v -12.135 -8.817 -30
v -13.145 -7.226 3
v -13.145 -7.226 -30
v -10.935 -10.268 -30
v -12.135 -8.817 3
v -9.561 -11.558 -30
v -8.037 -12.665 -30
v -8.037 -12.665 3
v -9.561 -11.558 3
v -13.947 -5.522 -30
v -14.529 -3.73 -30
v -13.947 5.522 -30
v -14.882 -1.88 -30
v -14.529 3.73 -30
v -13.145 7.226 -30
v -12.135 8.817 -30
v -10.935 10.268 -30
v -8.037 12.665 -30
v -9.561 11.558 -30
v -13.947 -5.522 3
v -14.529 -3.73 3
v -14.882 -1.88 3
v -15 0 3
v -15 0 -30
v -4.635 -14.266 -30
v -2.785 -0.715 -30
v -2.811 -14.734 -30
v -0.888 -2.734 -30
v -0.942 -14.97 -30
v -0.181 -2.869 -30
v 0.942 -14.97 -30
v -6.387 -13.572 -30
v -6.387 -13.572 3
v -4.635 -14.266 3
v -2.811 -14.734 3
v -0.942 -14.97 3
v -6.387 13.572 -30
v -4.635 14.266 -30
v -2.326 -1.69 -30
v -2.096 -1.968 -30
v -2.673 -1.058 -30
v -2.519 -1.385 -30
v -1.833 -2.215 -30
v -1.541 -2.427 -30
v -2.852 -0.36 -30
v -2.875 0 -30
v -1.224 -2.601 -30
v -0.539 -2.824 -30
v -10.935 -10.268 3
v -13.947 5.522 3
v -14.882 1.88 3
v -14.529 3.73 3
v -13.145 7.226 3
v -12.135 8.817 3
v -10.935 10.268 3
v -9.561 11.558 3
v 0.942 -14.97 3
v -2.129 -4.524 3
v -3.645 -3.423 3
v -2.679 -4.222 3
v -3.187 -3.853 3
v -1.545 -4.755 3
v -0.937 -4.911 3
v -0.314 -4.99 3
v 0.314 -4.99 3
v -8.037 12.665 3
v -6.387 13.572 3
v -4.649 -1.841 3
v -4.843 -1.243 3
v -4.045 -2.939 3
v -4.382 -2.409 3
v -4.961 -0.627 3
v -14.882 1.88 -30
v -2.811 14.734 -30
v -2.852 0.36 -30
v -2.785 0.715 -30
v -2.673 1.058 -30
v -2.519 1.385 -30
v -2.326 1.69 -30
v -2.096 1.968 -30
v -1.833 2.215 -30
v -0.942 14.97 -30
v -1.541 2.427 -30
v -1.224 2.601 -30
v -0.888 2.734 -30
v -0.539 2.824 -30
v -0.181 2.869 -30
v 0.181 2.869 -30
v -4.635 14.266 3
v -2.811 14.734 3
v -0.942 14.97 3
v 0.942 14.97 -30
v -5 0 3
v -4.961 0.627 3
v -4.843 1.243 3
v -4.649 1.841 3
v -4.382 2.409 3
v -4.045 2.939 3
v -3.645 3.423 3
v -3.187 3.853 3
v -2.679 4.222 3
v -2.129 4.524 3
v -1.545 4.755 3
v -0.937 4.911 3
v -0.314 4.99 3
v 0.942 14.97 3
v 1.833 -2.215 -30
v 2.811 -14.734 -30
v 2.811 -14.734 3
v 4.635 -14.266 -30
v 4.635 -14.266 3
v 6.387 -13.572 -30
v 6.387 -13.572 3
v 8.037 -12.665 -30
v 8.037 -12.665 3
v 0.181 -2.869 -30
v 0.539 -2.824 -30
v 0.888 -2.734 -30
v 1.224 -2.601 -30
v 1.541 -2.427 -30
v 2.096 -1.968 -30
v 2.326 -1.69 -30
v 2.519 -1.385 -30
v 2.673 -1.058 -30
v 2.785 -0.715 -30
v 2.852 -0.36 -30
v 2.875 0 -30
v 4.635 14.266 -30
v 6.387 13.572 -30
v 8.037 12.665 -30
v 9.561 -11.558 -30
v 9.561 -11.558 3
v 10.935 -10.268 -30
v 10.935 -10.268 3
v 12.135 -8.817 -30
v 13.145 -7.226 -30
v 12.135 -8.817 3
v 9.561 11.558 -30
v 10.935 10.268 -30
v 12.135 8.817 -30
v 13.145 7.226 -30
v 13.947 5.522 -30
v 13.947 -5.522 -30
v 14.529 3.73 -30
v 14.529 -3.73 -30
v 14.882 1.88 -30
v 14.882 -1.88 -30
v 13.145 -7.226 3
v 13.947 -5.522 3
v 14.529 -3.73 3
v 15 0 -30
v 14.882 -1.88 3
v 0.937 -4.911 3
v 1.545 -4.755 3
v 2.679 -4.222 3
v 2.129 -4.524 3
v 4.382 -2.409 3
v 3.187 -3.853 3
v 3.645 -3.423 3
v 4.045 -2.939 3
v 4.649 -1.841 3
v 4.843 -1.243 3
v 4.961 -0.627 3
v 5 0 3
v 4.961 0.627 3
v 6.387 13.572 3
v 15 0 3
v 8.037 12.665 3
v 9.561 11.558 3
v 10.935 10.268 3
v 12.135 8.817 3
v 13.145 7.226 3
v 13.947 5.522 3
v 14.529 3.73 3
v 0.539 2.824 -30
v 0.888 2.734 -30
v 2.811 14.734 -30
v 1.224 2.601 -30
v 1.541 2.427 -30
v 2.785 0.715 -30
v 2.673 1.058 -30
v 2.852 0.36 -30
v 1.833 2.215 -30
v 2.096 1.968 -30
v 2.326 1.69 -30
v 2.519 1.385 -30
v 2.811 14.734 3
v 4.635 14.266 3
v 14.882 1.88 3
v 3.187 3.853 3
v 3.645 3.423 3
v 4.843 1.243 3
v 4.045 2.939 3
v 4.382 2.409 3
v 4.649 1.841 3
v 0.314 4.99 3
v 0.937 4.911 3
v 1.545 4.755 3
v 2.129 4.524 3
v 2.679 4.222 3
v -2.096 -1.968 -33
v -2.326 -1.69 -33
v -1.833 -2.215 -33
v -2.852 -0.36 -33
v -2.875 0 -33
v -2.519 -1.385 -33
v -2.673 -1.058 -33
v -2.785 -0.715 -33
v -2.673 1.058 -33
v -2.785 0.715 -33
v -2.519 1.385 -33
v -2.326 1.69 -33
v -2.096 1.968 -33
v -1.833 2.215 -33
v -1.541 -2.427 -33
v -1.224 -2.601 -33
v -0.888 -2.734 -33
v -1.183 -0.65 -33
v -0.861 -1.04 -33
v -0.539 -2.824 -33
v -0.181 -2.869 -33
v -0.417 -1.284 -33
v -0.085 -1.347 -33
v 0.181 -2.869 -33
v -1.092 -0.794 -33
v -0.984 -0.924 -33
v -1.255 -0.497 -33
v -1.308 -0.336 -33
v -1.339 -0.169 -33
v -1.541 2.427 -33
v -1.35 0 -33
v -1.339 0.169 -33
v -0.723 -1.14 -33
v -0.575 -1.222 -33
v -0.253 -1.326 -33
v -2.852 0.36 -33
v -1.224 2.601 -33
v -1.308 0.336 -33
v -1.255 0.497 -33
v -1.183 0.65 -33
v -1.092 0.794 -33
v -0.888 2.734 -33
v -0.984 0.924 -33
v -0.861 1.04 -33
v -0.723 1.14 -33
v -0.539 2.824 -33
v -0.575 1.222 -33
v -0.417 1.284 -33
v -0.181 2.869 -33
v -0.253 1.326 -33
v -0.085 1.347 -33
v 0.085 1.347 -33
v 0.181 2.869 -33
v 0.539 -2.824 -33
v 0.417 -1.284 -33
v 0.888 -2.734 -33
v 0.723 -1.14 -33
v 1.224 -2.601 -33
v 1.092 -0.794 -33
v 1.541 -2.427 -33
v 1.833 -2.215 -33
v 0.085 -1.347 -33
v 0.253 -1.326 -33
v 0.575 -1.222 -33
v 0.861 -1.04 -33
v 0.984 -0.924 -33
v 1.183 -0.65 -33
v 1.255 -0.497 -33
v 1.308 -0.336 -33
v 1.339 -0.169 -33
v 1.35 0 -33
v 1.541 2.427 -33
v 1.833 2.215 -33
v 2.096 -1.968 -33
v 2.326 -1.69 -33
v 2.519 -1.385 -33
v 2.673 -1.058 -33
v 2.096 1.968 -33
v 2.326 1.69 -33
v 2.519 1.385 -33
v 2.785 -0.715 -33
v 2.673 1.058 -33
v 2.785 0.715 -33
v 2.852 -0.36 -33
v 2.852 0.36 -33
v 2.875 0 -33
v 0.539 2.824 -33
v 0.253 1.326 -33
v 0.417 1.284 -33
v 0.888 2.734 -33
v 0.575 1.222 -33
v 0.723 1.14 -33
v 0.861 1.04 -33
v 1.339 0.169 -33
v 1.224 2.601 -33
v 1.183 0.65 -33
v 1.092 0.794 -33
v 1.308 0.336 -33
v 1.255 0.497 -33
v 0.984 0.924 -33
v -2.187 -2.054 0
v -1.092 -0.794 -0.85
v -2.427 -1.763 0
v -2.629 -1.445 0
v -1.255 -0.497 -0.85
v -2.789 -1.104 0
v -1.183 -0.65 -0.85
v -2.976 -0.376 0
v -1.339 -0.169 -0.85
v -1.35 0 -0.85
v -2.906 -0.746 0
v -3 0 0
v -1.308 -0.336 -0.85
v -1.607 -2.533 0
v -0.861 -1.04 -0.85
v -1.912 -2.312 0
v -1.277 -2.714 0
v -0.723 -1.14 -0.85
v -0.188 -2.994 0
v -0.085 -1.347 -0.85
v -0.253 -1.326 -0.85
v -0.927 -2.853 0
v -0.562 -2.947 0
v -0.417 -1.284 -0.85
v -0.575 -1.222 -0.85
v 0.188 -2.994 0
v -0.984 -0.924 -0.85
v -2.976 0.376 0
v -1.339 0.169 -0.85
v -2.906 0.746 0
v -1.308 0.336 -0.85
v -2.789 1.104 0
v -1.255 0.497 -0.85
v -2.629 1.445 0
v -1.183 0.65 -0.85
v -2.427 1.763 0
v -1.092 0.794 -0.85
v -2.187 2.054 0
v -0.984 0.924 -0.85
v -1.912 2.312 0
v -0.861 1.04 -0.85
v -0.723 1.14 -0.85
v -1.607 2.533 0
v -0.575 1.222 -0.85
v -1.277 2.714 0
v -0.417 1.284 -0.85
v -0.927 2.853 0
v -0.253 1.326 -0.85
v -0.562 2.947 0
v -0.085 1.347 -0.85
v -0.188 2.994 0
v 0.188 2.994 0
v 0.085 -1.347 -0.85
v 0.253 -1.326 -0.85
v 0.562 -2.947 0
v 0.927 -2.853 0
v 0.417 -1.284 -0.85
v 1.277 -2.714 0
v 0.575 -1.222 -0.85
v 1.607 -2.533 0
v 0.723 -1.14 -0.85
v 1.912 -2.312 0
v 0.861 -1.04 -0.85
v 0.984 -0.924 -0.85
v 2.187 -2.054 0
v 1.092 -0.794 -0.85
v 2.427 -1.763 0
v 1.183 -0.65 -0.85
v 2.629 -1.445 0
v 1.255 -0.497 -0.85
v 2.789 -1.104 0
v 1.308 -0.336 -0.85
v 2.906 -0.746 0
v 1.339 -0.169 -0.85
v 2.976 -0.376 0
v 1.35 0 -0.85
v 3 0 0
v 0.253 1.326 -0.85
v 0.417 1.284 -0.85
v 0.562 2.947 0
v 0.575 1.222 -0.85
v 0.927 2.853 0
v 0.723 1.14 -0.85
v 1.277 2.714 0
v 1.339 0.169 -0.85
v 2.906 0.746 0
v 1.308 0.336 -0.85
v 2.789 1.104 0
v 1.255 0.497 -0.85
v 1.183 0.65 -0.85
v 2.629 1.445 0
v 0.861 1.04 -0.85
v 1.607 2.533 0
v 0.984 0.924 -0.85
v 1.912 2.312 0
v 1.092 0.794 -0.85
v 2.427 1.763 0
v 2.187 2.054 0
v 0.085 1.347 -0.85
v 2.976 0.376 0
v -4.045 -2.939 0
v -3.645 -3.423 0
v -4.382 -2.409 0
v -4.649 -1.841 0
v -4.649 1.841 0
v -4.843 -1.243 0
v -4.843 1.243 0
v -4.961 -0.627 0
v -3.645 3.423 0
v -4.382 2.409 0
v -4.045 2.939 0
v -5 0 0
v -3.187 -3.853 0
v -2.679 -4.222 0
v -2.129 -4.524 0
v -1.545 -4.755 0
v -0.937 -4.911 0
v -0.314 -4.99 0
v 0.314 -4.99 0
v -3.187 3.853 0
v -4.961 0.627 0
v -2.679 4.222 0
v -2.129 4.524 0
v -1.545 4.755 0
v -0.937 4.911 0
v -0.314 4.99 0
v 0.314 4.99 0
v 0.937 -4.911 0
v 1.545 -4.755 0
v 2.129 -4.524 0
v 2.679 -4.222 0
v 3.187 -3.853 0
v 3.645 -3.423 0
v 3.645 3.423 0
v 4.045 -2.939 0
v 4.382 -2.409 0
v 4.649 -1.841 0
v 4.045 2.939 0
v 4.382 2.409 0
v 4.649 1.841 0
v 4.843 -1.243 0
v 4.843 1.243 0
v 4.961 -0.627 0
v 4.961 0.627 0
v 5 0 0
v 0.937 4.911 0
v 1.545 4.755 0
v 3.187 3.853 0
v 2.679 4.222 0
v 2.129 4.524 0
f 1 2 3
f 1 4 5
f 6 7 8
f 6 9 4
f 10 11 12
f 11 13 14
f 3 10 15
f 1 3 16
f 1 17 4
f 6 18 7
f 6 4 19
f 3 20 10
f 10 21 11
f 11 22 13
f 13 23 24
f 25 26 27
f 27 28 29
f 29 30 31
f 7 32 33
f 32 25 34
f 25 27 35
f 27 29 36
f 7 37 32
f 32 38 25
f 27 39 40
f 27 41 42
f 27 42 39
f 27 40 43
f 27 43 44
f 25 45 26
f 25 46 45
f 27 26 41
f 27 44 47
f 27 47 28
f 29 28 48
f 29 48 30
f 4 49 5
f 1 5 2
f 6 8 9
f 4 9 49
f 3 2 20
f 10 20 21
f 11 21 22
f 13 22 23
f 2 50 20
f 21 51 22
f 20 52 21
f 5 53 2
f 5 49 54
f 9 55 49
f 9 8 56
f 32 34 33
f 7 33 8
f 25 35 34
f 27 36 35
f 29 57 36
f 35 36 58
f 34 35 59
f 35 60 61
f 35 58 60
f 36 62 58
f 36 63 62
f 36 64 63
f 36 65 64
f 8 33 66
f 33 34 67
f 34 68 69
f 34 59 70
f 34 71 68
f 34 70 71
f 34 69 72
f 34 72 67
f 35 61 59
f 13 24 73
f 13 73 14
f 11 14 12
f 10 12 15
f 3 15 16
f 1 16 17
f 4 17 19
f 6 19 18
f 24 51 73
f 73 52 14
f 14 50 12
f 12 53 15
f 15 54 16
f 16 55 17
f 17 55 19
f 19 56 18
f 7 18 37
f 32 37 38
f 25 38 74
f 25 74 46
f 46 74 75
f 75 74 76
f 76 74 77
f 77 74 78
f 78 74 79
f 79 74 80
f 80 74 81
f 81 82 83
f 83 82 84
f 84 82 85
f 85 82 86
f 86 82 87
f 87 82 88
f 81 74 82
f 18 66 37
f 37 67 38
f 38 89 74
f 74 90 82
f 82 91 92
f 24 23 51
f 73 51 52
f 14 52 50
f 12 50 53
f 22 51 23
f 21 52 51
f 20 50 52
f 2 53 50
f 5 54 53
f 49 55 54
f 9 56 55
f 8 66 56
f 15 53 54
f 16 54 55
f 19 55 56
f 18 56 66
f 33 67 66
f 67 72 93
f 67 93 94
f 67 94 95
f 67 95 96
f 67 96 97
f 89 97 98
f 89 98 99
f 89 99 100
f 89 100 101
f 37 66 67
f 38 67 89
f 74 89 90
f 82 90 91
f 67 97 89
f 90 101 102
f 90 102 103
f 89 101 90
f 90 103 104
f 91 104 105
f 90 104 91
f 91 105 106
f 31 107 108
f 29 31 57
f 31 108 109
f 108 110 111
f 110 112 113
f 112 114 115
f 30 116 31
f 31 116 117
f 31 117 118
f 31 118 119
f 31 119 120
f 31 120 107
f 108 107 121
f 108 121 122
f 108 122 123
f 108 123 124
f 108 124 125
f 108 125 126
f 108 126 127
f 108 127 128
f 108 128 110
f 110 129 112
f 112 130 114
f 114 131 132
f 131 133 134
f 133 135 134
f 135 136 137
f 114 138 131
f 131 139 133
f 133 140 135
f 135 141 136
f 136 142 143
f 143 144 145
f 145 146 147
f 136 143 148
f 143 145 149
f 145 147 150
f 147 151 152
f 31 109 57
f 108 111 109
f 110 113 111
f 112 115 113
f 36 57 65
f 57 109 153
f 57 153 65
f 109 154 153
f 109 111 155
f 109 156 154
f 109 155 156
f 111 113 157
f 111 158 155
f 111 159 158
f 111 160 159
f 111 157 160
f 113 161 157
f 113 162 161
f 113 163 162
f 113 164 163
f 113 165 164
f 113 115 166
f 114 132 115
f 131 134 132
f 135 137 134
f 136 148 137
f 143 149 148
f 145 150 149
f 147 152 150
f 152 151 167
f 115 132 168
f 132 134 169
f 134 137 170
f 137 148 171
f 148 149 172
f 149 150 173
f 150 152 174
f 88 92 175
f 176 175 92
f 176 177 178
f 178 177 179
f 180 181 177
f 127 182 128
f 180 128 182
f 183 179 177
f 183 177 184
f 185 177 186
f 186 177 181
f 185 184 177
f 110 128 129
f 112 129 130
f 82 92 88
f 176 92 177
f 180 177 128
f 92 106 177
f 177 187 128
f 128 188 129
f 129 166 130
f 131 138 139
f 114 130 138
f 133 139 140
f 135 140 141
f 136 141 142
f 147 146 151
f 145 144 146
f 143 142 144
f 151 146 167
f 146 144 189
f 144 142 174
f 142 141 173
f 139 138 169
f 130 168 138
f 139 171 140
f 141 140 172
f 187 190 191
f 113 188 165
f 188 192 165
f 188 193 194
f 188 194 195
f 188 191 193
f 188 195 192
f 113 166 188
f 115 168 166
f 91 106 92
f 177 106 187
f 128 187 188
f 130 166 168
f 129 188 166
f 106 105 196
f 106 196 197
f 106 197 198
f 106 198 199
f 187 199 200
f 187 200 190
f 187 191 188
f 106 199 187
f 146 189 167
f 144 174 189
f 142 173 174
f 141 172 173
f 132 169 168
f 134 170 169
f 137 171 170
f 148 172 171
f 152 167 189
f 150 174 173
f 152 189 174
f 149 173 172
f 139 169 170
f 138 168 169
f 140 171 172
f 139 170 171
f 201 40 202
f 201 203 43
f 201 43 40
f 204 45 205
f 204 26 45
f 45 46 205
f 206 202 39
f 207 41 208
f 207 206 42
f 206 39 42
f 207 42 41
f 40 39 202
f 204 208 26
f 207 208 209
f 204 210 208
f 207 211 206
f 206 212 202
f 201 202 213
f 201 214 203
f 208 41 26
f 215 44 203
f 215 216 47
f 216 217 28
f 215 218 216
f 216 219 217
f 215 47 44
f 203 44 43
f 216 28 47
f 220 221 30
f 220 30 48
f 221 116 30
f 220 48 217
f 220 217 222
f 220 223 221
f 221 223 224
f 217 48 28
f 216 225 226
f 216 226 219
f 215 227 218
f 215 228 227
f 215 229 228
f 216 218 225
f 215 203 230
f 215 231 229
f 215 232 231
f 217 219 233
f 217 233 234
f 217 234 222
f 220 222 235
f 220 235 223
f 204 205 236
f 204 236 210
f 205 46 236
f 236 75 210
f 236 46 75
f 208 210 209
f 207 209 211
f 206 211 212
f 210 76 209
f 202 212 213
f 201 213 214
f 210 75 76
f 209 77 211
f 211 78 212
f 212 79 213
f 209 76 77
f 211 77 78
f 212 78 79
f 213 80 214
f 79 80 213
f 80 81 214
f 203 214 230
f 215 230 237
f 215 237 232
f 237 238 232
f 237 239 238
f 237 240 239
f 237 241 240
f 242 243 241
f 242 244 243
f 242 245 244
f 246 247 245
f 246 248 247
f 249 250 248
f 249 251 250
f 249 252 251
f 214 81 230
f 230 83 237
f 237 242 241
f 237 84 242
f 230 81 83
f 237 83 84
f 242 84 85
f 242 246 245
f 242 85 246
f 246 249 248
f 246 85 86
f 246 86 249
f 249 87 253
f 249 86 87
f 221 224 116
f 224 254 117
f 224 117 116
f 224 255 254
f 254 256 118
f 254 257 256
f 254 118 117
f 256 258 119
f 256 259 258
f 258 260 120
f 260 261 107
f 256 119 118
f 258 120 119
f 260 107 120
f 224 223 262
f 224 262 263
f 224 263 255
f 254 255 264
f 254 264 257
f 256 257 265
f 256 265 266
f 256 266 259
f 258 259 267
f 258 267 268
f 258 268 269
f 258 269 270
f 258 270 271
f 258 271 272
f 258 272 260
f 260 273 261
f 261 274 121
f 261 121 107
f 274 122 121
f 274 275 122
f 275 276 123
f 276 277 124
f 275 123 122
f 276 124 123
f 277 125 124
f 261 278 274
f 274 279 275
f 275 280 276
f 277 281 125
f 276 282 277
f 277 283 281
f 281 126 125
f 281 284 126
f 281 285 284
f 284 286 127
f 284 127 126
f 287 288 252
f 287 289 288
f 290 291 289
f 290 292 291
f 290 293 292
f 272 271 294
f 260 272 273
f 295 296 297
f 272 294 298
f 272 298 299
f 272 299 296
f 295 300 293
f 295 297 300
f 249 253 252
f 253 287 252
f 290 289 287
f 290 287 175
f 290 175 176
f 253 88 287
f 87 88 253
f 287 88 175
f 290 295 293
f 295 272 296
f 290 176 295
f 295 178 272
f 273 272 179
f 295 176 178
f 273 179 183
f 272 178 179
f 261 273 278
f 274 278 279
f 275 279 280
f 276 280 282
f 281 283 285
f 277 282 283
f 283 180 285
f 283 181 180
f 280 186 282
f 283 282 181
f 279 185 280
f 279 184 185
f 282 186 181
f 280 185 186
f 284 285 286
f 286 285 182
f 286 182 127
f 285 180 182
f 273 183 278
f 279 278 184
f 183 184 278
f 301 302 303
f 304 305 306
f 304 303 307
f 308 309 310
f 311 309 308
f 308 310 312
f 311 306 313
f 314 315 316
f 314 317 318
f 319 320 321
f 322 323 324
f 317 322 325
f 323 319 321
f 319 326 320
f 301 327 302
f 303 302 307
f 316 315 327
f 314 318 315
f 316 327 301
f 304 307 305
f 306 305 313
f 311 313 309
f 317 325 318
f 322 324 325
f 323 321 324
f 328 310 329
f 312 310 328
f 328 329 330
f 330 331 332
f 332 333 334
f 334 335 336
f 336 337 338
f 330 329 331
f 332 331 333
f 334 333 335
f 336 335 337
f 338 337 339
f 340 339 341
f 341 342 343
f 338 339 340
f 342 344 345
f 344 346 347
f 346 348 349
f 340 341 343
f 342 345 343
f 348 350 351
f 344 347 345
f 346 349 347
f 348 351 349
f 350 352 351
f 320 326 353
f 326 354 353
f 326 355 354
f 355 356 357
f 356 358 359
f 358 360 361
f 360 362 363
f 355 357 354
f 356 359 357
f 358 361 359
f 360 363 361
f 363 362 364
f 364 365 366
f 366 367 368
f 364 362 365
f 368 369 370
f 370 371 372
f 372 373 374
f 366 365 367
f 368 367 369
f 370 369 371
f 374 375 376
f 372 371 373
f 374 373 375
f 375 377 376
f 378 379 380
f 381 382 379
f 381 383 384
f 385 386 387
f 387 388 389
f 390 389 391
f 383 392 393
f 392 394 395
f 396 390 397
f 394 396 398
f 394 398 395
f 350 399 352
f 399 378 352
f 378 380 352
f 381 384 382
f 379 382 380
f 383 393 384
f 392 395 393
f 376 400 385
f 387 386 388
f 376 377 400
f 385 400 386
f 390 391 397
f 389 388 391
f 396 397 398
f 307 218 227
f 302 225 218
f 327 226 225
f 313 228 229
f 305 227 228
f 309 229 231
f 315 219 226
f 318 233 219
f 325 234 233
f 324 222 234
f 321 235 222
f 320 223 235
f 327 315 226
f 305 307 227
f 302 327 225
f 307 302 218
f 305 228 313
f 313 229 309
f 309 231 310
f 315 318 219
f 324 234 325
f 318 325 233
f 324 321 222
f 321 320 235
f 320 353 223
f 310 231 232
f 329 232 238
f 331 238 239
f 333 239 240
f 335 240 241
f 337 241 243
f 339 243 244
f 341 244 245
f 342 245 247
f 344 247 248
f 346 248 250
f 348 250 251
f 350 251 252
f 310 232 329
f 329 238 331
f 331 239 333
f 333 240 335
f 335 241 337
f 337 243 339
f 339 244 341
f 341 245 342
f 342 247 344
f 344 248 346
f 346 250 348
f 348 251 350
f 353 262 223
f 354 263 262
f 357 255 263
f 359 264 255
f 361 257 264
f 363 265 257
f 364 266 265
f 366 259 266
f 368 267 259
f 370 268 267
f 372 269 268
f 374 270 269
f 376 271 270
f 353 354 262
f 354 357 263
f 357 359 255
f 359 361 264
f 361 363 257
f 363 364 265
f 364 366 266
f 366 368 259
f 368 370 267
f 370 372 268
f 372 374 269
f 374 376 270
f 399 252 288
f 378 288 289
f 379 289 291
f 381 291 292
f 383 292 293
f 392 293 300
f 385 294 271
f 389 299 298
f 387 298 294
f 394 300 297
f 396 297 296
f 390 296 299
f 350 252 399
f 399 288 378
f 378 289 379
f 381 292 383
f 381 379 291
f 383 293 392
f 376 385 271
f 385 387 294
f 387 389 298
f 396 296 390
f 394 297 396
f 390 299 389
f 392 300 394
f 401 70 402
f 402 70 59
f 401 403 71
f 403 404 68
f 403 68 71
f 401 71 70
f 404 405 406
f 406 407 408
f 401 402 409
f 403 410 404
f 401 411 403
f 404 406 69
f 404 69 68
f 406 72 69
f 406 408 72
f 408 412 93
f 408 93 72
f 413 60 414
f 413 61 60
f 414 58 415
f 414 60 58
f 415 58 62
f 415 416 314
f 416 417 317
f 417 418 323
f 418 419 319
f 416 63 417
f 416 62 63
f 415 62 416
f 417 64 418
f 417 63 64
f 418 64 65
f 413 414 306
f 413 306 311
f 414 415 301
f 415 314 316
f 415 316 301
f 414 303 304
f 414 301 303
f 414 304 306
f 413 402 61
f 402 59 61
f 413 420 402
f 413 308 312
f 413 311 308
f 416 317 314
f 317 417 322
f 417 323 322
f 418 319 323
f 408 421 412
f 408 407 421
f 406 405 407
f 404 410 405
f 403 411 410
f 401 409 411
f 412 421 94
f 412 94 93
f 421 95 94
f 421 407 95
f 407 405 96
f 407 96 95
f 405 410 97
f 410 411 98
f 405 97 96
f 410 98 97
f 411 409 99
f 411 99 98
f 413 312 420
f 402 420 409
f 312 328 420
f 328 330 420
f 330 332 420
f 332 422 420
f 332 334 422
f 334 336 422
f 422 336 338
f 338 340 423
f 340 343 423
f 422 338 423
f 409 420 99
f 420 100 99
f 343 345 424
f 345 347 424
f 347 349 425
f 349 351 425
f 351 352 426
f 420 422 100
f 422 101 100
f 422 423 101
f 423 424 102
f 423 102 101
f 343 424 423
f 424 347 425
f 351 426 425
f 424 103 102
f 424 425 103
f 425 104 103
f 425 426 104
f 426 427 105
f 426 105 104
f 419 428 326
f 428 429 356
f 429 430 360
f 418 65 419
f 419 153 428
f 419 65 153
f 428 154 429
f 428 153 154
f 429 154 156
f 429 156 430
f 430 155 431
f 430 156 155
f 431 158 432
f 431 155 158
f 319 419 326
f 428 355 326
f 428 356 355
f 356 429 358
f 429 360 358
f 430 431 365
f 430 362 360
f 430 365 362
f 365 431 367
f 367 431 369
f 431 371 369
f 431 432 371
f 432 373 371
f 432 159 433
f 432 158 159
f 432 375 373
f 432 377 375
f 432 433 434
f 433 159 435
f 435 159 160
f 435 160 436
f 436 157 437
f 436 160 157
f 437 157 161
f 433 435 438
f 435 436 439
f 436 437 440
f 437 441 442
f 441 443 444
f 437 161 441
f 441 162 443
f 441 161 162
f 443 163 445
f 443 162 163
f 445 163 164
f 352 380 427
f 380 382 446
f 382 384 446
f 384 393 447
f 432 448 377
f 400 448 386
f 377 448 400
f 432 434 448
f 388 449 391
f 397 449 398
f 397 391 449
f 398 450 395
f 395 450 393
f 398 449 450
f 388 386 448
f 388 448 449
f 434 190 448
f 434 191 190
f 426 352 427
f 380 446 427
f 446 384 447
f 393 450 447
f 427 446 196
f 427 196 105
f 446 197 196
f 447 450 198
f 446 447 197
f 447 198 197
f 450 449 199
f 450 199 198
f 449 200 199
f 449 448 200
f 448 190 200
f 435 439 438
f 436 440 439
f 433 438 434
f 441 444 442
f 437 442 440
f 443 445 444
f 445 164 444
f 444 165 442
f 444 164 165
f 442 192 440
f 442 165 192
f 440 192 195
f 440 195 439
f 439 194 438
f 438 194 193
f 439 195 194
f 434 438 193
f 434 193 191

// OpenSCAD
$fn = 50;

difference() {
	union() {
		translate(v = [0, 0, -30.0]) {
			cylinder(h = 33, r = 15.0);
		}
		#translate(v = [0, 0, -33.0]) {
			cylinder(h = 33, r = 2.875);
		}
	}
	union() {
		translate(v = [0, 0, 0]) {
			rotate(a = [0, 0, 0]) {
				difference() {
					union() {
						translate(v = [0, 0, -33.0]) {
							cylinder(h = 33, r = 1.0);
						}
						translate(v = [0, 0, -0.85]) {
							cylinder(h = 0.85, r1 = 1.35, r2 = 3.0);
						}
						translate(v = [0, 0, -33.0]) {
							cylinder(h = 33, r = 1.35);
						}
						translate(v = [0, 0, -33.0]) {
							cylinder(h = 33, r = 1.0);
						}
					}
					union();
				}
			}
		}
		#cylinder(h = 3, r = 5.0);
	}
}
